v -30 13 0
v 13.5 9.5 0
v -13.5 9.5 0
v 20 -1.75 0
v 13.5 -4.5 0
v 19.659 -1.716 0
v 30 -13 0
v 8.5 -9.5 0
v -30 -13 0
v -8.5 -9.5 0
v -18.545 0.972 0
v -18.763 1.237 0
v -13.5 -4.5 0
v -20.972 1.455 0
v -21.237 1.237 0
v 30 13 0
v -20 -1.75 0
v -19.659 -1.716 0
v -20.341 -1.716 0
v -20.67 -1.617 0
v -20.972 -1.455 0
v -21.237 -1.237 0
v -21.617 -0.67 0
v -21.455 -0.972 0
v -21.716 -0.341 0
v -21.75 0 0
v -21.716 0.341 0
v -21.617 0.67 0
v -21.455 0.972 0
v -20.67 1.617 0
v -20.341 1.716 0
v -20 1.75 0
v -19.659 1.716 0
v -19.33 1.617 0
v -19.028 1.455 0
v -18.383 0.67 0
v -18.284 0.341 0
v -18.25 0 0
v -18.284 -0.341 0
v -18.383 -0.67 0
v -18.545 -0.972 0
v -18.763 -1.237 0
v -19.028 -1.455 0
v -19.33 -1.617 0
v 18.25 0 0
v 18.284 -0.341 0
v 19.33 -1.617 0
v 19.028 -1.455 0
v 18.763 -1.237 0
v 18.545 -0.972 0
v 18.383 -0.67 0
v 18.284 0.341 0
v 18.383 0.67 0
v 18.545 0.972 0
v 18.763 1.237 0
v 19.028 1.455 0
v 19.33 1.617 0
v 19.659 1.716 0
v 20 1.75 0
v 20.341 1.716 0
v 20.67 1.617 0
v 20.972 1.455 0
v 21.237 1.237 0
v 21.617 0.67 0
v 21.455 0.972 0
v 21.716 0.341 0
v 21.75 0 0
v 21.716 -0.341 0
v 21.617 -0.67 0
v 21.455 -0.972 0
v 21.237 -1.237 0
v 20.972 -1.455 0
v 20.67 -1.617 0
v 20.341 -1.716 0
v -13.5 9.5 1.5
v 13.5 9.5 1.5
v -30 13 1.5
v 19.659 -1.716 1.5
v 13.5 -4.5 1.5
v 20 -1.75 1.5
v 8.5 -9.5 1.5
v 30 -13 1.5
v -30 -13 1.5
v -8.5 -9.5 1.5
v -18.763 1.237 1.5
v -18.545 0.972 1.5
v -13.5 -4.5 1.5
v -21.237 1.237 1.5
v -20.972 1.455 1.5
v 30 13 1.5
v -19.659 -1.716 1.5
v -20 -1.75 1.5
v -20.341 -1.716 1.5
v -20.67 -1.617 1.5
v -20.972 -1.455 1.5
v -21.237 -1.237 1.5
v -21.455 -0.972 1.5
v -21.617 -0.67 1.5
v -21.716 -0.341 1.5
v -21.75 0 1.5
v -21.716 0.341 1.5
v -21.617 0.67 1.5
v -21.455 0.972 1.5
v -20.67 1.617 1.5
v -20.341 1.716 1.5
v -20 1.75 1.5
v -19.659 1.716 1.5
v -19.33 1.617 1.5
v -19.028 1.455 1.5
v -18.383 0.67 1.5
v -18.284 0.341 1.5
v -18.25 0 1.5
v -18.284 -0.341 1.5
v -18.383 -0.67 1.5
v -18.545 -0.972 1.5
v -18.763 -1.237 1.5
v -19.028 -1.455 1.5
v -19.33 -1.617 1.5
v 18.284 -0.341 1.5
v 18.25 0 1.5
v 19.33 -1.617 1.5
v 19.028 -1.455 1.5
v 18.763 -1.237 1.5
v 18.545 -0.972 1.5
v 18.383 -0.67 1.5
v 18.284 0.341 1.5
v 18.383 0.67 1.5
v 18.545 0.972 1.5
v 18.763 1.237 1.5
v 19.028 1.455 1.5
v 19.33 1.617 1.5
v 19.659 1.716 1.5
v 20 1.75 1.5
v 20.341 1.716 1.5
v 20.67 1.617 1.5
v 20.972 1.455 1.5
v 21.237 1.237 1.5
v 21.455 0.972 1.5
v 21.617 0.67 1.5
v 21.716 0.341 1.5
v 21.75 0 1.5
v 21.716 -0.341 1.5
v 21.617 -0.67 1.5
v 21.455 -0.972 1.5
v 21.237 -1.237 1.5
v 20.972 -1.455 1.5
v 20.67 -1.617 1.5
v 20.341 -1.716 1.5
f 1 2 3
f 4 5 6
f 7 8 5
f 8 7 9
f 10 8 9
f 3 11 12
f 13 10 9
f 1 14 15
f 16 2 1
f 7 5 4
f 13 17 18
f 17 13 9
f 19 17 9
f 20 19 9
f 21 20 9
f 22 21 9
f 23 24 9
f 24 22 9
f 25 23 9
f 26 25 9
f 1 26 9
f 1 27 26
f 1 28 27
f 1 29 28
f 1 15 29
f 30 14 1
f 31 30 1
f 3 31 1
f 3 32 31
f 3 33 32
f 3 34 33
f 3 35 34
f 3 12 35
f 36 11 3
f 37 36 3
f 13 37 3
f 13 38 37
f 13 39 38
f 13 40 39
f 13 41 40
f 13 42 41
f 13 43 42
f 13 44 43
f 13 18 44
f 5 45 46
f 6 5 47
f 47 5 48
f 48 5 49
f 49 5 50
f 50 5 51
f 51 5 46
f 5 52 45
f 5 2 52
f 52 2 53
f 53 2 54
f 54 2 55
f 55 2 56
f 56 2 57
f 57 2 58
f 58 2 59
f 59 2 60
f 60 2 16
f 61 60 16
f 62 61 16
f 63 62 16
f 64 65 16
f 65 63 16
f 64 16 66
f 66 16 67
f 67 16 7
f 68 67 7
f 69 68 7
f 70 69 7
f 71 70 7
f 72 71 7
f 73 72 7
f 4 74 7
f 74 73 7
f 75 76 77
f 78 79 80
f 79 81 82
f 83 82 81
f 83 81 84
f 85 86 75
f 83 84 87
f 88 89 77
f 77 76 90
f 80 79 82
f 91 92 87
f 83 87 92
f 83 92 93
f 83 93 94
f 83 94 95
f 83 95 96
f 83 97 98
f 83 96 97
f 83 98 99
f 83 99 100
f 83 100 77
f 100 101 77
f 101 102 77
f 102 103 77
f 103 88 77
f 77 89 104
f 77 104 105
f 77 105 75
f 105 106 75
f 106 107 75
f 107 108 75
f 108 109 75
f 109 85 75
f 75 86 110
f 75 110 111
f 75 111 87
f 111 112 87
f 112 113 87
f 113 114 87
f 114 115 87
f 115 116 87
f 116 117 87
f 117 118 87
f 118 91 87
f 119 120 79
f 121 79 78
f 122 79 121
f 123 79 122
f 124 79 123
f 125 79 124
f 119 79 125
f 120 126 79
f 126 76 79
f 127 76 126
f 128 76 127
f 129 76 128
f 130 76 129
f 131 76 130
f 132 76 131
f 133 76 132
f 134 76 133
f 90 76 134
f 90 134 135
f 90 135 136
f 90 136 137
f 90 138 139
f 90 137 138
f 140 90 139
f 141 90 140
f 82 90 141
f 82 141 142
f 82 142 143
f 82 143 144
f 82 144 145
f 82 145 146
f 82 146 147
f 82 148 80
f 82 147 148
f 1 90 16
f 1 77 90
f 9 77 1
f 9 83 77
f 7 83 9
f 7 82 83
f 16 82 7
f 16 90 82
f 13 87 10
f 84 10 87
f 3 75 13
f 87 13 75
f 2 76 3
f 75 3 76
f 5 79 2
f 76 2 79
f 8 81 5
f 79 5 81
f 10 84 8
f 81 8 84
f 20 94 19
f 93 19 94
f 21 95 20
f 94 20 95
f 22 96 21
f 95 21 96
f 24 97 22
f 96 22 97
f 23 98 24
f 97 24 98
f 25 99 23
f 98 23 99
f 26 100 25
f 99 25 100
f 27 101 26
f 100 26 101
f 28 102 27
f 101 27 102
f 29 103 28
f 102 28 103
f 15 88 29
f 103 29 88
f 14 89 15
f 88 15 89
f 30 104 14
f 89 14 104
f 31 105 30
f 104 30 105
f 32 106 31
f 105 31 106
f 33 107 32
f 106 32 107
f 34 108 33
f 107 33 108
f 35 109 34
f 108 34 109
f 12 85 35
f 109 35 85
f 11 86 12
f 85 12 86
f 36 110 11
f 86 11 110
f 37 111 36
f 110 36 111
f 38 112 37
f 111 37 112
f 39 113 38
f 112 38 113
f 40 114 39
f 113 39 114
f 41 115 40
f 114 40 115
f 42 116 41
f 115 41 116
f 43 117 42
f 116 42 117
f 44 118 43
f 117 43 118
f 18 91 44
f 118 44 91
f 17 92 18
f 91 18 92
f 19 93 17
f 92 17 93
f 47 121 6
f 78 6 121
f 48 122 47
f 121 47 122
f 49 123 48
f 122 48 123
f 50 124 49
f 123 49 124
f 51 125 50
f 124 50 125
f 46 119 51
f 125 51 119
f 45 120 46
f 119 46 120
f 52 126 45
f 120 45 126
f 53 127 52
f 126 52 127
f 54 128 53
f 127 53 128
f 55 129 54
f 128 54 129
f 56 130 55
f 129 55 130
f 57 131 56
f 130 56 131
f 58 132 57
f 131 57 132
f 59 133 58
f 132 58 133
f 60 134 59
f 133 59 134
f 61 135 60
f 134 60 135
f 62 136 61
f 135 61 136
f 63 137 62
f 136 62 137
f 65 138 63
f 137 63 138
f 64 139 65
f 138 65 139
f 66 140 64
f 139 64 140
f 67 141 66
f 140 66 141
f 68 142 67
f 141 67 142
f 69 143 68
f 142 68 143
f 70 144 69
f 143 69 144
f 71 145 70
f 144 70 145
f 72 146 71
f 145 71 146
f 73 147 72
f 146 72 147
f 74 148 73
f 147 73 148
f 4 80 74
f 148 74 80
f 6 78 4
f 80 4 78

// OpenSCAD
/************************************************************************************************************************
 * BoxLab C14 connector cutout template                                                                    (2024-07-06) *
 * -------------------------------------------------------------------------------------------------------------------- *
 * This is template for cutting hole for the IEC C14 connector.                                                         *
 * -------------------------------------------------------------------------------------------------------------------- *
 * Copyright (c) Michal Altair Valasek, 2024 | Licensed under terms of the MIT license.                                 *
 *               https://www.rider.cz | https://www.altair.blog | https://github.com/ridercz/BoxLab                     *
 ************************************************************************************************************************/

outer_size = [60, 26];
inner_size = [27, 19];
screw_hole_diameter = 3.5;
screw_hole_span = 40;
thickness = 1.5;

main_hole_points = [
    [00, 19],
    [27, 19],
    [27, 05],
    [22, 00],
    [05, 00],
    [00, 05],
];

linear_extrude(height = thickness) difference() {
    // Outer template shape
    square(outer_size, center = true);
    // Main hole
    translate(inner_size / -2) polygon(points = main_hole_points);
    // Screw holes
    for(xpos = [-screw_hole_span/2, screw_hole_span/2]) translate([xpos, 0]) circle(d = screw_hole_diameter, $fn = 32);
}
